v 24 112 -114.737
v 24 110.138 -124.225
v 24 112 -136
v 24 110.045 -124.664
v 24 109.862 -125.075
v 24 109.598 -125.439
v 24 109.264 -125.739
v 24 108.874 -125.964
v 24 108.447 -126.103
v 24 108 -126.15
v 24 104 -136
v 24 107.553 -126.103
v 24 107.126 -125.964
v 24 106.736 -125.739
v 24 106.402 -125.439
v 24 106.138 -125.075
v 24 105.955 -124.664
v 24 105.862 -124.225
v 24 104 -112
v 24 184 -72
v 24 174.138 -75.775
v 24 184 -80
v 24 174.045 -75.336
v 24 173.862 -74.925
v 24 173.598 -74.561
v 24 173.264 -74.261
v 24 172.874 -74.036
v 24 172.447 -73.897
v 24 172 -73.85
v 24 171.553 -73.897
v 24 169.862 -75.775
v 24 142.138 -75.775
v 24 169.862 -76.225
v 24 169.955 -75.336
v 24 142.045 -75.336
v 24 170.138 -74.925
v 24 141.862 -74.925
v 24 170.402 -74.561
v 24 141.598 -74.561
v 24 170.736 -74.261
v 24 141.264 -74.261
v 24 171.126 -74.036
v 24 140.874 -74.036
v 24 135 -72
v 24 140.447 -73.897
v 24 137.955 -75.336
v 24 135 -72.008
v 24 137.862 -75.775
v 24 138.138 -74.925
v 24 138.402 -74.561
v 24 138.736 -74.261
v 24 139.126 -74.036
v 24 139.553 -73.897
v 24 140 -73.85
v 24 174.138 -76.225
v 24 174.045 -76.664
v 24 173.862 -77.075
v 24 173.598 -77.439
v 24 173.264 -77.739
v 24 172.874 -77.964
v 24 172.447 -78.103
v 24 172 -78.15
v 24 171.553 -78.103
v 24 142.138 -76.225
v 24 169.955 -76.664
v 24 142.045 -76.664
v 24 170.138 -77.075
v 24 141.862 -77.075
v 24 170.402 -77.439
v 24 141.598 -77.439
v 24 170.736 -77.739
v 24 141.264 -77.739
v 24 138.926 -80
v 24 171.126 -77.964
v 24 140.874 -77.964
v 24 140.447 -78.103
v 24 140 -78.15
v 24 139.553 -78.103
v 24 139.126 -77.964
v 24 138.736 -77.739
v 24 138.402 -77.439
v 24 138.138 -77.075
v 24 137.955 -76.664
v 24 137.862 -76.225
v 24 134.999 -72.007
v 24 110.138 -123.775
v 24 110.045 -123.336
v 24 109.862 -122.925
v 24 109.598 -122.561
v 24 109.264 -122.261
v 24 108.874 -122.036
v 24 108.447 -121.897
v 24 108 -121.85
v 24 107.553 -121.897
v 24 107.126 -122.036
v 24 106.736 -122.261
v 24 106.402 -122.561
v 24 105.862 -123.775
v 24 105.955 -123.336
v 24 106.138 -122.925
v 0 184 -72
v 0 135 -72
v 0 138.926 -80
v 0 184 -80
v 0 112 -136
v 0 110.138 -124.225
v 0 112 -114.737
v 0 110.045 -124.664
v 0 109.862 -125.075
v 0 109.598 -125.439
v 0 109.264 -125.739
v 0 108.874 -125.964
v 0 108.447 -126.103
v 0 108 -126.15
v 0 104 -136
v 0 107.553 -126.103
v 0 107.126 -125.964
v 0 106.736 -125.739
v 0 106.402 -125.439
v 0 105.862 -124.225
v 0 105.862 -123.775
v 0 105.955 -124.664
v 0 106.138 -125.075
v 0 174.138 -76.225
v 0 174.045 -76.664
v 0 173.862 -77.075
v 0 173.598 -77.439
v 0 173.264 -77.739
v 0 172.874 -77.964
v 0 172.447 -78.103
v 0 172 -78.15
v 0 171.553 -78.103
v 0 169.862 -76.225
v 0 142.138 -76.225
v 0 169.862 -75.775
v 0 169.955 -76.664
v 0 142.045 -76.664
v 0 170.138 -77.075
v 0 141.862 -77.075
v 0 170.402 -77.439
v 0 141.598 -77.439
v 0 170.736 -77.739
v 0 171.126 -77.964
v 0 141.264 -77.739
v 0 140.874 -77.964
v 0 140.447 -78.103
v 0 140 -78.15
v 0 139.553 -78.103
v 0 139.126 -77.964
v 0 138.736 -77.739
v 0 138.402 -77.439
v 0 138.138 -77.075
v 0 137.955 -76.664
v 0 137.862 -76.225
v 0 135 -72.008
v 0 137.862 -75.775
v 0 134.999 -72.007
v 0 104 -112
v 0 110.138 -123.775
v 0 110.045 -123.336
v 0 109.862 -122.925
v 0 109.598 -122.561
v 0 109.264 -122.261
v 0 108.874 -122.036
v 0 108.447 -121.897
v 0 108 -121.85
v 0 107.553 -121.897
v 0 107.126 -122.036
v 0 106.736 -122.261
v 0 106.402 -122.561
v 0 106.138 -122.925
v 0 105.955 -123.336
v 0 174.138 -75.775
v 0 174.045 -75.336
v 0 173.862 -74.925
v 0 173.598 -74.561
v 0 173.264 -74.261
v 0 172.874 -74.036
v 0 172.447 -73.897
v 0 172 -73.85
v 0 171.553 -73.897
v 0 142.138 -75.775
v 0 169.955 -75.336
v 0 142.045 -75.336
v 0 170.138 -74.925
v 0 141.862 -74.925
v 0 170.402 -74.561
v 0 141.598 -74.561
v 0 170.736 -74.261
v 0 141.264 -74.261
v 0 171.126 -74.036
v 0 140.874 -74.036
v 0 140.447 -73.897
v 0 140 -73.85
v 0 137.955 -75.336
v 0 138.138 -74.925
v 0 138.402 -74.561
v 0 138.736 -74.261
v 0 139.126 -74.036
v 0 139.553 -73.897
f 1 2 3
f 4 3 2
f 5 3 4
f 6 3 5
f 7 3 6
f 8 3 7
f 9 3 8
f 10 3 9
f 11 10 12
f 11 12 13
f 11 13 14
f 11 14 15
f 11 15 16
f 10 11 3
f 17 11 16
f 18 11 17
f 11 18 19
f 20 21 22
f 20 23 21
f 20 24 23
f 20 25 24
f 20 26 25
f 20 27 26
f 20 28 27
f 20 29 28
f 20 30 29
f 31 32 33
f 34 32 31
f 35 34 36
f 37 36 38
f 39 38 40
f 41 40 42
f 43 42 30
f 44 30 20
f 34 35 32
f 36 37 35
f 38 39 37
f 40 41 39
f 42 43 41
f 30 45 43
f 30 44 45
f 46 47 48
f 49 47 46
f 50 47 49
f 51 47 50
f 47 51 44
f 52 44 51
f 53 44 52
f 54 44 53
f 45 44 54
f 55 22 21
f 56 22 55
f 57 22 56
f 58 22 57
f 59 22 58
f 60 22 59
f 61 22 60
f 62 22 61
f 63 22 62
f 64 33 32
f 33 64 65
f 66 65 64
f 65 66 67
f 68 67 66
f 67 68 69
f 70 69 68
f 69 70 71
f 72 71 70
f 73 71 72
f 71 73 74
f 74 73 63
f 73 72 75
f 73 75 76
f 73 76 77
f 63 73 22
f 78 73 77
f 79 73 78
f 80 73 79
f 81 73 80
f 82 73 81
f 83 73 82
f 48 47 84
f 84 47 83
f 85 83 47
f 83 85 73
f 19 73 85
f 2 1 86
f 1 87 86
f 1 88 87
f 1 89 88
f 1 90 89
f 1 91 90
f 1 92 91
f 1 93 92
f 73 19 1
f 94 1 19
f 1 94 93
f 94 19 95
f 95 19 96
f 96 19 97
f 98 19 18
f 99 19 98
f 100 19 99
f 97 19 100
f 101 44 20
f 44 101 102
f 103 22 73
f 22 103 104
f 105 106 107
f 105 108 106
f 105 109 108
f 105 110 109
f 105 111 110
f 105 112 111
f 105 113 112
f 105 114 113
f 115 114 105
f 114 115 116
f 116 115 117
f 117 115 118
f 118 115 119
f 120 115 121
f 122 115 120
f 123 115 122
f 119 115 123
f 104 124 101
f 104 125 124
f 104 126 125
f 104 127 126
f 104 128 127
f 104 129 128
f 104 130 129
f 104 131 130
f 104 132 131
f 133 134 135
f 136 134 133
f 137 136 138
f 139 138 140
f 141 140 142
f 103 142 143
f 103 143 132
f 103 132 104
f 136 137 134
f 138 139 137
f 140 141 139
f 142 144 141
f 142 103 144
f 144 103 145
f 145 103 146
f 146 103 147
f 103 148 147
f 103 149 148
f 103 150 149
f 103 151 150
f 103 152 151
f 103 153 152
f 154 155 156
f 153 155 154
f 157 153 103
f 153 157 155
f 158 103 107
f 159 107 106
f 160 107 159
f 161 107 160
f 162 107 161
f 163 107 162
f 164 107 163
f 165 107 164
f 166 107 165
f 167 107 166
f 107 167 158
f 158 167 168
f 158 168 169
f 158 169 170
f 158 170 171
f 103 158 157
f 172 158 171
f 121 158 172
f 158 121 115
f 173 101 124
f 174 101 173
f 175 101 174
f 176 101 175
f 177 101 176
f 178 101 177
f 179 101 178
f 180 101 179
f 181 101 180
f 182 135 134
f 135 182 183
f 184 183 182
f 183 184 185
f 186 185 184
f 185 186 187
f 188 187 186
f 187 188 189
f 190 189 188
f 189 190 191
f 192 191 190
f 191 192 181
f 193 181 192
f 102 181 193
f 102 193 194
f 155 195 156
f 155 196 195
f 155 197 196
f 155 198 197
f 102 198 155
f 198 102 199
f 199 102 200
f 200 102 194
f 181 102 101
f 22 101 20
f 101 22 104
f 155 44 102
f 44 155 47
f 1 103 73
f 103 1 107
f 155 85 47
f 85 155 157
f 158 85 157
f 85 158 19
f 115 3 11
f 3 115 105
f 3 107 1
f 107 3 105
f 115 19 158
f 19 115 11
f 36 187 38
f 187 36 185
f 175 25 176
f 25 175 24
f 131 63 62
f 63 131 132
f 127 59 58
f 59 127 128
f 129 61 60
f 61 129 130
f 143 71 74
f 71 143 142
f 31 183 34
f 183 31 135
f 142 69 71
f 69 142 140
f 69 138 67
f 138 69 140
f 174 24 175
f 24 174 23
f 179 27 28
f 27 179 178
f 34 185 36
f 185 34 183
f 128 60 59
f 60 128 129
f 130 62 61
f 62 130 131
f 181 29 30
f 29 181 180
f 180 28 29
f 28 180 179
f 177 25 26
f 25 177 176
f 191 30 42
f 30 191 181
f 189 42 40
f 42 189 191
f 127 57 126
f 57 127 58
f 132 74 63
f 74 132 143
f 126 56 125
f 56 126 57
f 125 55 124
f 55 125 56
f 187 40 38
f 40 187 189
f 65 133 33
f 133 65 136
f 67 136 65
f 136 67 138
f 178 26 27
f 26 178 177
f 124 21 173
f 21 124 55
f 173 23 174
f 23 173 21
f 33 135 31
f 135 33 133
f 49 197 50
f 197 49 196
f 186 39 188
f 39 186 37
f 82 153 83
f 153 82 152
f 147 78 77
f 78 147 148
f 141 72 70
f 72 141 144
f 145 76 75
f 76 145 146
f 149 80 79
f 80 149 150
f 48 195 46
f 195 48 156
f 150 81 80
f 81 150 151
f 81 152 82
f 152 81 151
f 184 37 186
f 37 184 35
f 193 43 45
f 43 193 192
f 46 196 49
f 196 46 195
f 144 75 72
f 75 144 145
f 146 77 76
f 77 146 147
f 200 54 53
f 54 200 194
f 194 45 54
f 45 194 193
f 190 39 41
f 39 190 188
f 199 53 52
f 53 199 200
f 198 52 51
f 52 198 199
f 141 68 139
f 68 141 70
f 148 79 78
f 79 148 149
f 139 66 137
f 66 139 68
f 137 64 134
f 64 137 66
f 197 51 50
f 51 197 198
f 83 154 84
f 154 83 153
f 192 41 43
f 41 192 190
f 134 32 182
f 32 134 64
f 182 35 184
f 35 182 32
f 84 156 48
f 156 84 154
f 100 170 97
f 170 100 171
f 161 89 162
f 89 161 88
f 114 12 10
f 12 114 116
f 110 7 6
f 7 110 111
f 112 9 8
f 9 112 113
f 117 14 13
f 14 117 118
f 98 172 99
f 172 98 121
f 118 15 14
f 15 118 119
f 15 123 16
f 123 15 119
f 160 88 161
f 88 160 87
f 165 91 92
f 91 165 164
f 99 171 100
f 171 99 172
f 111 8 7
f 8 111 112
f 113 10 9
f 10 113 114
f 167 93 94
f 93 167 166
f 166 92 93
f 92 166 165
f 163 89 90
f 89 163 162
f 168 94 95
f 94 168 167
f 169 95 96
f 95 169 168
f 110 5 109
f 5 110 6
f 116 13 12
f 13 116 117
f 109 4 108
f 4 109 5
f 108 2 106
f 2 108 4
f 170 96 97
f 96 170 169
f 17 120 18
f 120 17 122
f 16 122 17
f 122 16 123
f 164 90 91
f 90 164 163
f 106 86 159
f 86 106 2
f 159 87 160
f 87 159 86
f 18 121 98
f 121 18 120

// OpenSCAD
// bottom piece
difference() {
union() {
    // entrance piece
    translate([0,135,-80])
    cube([24,49,8]);
    
    // angle piece
    translate([0,104,-112])
    rotate([322.22,0,0])
    cube([24,8,50.6]);
    
    // bottom
    translate([0,104,-136])
    cube([24,8,24]);
}
    // far right hole
    translate([-4,172,-76])
    rotate([0,90,0])
    cylinder(r=2.15,60, $fn=30);

    // middle hole
    translate([-4,140,-76])
    rotate([0,90,0])
    cylinder(r=2.15,60, $fn=30);   

    // bottom hole
    translate([-4,108,-124])
    rotate([0,90,0])
    cylinder(r=2.15,60, $fn=30);
}
